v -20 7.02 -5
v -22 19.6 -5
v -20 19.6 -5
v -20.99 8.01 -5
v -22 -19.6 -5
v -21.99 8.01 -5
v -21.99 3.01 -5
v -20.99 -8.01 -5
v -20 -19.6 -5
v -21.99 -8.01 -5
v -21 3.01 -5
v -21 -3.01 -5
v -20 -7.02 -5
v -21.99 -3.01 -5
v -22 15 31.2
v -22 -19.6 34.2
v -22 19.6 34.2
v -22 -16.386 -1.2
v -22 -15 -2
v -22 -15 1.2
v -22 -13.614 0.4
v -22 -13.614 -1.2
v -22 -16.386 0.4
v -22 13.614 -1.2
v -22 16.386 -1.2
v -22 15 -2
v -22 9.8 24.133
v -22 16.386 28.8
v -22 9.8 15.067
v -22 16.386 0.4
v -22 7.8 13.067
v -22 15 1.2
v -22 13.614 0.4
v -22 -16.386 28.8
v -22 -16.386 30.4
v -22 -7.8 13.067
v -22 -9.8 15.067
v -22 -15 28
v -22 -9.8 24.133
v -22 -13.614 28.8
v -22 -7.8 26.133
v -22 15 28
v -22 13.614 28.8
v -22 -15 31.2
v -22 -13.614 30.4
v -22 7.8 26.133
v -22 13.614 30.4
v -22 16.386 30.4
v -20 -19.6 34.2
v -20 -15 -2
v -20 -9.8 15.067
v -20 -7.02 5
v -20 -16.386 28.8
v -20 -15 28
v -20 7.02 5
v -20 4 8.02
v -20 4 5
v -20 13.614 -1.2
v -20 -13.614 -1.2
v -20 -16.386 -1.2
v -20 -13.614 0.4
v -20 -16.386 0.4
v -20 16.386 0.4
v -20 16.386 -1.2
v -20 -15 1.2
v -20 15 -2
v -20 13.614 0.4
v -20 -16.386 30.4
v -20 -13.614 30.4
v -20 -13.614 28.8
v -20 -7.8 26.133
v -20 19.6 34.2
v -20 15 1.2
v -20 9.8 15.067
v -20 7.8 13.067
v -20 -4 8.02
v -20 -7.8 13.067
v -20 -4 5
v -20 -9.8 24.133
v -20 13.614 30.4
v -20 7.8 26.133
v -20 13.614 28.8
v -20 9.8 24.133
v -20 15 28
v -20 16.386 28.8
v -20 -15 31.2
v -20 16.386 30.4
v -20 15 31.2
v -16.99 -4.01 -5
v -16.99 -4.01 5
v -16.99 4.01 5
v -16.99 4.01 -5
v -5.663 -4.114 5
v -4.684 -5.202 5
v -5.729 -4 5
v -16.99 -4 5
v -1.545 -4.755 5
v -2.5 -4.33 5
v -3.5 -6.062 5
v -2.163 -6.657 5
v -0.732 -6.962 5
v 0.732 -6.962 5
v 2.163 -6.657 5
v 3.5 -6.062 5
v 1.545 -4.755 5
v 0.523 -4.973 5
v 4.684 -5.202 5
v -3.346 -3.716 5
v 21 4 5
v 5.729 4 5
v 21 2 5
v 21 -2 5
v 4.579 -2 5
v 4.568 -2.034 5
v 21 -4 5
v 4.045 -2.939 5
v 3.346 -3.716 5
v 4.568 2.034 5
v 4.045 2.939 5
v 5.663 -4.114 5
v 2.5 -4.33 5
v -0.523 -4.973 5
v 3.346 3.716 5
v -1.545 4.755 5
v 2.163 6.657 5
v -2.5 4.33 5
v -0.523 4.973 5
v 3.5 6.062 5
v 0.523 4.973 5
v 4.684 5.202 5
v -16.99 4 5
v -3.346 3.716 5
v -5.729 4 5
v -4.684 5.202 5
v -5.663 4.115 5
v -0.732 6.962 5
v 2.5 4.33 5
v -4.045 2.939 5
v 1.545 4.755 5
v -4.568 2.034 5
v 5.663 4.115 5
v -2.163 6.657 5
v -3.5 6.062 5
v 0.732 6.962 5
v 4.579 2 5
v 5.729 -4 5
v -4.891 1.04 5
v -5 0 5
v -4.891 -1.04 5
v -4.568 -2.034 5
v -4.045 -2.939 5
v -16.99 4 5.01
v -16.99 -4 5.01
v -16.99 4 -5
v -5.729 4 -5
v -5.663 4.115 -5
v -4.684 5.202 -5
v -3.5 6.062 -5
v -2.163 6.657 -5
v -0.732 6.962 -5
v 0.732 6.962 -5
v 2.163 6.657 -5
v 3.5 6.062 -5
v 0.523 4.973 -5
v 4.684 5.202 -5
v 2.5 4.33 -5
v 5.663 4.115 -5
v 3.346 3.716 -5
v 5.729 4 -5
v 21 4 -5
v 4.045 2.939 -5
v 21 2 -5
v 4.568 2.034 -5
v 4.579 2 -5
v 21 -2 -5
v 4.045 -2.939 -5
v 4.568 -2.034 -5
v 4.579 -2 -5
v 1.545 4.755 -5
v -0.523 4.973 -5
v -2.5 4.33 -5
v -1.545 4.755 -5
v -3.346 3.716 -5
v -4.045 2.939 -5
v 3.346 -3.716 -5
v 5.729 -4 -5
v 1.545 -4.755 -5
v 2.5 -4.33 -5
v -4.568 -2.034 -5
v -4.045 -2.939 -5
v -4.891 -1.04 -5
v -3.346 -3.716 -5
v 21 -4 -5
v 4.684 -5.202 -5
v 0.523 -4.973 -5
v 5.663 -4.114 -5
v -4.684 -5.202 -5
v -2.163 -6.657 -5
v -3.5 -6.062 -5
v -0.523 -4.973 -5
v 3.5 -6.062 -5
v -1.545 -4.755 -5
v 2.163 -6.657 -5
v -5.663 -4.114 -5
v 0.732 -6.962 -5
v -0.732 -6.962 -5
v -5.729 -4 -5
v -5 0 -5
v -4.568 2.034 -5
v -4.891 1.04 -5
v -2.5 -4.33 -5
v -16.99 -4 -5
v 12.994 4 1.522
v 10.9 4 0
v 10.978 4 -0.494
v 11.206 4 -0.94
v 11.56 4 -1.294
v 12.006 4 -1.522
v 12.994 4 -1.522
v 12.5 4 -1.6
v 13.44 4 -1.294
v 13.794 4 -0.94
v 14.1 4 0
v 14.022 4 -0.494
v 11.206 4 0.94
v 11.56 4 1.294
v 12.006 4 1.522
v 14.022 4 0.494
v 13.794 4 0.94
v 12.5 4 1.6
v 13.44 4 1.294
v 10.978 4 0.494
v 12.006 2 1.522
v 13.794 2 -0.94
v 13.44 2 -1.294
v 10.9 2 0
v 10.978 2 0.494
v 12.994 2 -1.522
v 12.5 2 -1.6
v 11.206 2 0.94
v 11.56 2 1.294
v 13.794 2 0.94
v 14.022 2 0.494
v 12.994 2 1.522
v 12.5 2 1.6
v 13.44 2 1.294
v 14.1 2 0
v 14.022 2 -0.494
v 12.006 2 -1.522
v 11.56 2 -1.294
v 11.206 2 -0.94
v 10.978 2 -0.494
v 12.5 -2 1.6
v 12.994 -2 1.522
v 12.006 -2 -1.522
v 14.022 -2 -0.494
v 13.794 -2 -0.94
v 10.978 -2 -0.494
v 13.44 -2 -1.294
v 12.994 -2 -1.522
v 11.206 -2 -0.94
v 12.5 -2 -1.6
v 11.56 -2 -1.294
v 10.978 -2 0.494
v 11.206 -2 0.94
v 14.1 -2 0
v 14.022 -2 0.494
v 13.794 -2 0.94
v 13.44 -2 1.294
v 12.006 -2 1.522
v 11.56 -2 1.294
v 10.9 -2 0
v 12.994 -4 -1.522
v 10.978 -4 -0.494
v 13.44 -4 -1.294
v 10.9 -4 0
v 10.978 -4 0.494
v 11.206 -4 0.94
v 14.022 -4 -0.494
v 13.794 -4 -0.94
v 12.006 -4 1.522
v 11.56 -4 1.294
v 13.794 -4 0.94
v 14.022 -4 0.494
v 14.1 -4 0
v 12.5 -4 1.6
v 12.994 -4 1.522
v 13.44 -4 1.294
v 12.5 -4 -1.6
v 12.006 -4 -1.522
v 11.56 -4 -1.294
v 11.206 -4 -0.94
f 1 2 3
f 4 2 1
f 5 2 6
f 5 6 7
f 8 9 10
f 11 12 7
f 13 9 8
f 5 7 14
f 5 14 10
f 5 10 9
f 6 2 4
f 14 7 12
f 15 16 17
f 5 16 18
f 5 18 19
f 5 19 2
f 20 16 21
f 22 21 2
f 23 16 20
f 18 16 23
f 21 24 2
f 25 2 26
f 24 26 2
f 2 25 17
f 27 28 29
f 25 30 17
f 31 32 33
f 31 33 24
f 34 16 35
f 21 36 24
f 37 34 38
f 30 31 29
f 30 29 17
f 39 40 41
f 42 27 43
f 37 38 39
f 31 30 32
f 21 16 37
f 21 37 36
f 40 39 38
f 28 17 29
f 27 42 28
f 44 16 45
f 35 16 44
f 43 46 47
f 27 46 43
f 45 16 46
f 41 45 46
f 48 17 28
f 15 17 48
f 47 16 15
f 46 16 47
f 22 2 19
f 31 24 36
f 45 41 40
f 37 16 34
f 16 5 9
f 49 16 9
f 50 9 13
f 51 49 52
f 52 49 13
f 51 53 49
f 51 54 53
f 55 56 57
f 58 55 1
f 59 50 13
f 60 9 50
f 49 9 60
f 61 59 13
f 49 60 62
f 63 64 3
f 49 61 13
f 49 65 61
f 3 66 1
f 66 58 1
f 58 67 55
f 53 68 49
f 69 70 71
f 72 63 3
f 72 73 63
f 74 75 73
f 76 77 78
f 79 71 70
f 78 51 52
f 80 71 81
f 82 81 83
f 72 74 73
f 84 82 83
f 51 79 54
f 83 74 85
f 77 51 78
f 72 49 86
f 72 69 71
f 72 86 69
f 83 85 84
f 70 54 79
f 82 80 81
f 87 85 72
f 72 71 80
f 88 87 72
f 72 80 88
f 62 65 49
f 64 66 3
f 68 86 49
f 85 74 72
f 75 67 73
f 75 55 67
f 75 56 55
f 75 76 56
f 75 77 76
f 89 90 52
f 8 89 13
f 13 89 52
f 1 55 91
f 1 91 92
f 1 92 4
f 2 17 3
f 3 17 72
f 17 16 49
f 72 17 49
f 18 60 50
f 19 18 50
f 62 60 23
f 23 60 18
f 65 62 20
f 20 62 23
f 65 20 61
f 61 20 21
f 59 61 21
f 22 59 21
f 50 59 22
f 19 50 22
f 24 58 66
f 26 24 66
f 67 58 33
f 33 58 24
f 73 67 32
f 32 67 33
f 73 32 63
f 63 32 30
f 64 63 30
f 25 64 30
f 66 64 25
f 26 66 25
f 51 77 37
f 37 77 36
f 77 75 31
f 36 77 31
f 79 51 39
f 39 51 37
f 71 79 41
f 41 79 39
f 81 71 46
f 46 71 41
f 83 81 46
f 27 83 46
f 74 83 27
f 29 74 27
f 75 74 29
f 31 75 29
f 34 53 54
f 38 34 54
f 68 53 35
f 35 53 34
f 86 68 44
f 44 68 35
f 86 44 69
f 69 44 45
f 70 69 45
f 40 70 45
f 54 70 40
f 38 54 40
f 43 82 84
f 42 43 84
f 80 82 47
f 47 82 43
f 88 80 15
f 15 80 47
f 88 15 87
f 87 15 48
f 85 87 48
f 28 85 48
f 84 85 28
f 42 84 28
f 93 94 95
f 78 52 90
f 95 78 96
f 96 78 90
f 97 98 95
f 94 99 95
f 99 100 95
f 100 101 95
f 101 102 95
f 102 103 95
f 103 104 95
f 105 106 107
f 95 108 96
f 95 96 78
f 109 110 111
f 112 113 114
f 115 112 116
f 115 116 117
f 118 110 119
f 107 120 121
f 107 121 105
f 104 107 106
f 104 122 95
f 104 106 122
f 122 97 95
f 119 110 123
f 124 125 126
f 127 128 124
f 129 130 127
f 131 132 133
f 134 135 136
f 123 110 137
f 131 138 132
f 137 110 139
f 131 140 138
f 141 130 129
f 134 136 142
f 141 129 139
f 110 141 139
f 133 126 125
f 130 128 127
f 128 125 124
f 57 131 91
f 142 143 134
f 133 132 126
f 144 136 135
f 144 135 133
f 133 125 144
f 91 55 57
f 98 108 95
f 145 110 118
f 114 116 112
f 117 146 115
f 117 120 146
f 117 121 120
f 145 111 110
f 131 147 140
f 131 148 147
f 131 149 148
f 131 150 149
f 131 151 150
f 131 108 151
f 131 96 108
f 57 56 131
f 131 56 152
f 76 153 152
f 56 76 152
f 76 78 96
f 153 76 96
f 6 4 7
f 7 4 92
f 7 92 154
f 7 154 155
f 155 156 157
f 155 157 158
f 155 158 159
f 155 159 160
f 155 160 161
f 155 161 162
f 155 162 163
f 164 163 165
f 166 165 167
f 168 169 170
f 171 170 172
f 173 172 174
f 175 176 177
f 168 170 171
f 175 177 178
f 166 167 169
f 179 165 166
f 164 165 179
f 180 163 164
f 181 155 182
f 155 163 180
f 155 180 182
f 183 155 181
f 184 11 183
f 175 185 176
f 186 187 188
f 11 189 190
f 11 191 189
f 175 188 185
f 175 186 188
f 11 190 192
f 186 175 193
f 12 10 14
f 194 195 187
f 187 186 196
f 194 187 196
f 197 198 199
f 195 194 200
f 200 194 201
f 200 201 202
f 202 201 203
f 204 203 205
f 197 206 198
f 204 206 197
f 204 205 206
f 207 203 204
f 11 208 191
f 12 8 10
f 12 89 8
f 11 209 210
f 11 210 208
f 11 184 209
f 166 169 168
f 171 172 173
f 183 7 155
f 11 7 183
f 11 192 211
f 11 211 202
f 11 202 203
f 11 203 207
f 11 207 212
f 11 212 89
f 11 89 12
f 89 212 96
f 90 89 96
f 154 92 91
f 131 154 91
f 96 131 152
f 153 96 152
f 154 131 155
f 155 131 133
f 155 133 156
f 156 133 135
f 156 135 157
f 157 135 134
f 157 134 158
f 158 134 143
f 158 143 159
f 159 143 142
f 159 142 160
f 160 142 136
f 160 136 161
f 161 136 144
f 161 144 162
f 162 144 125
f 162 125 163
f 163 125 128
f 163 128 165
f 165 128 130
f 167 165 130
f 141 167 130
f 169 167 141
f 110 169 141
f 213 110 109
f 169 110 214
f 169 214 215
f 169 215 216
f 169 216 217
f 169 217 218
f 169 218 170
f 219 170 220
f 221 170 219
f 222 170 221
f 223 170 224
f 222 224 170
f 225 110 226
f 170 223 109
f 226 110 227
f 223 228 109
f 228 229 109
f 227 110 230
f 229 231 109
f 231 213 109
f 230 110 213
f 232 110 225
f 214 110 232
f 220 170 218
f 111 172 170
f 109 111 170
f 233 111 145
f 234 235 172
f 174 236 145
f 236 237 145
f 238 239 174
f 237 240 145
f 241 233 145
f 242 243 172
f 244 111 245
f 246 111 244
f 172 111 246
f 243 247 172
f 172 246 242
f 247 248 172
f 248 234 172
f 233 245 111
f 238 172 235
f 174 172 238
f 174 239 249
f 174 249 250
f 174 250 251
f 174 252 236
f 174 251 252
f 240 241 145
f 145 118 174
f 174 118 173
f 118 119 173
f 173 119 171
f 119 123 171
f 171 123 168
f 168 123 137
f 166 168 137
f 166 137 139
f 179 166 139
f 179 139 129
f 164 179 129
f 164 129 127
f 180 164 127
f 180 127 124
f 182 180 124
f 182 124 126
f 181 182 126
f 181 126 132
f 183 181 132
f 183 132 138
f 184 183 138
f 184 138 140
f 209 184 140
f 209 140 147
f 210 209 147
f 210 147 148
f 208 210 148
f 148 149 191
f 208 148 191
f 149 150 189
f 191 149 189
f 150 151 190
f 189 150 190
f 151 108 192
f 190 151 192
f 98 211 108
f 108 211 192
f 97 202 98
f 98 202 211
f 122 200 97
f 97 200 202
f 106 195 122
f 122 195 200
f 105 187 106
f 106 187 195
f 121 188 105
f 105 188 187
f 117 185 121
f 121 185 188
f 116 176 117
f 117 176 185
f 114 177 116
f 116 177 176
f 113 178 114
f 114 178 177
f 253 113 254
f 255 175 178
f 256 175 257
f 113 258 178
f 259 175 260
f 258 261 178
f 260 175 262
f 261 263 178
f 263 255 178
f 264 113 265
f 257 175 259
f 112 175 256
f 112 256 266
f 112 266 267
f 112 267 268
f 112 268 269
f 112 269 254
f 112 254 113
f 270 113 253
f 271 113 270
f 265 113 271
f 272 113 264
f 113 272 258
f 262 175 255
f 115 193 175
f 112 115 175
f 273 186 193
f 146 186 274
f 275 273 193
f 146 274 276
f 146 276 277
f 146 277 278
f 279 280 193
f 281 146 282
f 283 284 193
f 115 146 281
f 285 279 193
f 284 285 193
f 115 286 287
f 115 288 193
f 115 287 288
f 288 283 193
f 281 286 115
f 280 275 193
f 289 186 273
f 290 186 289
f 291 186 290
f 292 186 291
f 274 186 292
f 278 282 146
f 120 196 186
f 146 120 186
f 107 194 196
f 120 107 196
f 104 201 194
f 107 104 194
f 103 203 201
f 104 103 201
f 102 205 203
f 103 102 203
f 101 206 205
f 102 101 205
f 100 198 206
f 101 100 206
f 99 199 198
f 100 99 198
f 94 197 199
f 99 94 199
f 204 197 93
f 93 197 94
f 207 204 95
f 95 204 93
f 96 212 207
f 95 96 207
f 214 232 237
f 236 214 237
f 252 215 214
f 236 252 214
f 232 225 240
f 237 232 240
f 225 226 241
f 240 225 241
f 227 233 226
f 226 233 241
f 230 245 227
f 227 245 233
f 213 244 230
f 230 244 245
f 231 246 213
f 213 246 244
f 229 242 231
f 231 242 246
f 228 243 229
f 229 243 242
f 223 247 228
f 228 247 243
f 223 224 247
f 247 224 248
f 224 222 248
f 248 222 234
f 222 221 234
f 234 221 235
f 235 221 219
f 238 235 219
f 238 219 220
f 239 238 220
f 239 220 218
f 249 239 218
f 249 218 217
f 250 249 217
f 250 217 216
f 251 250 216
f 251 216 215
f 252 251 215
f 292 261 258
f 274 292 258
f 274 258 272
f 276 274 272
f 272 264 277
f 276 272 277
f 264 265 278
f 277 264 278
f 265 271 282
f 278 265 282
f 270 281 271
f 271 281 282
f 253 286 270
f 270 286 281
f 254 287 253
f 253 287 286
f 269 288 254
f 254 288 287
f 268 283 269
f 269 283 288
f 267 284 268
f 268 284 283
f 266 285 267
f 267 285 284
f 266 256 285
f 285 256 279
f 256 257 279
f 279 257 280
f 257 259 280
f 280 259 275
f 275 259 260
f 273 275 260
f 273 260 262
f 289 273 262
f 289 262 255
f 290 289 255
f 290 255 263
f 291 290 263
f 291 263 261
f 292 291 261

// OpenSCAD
// file: obiscad/attach.scad
//---------------------------------------------------------------
//-- Openscad Attachment library
//-- Attach easily parts. Make your designs more reusable
//---------------------------------------------------------------
//-- This is a component of the obiscad opescad tools by Obijuan
//-- (C) Juan Gonzalez-Gomez (Obijuan)
//-- Sep-2012
//---------------------------------------------------------------
//-- Released under the GPL license
//---------------------------------------------------------------

use <vector.scad>

module connector(c)
{
  p = c[0];
  v = c[1];
  ang = c[2];

  color("Gray") point(p);
  translate(p)
    color("Gray") vector(unitv(v)*6,l_arrow=2);
}


//-- a,b are connectors
module attach(a,b)
{
  //-- Get the data from the connectors
  vref = b[1];
  v = a[1];
  roll=a[2];
  pos1 = a[0];
  pos2 = b[0];

  //-------- Calculations for the "orientate operator"
  //-- Calculate the rotation axis
  raxis = cross(vref,v);
    
  //-- Calculate the angle between the vectors
  ang = anglev(vref,v);

  translate(pos1)
    //-- Orientate operator
    rotate(a=roll, v=v)  rotate(a=ang, v=raxis)
      translate(-pos2)
	child(0); 
}

module arm(debug=false)
{
  
  cube(asize,center=true);

  if (debug) {
    frame(l=10);
    connector(a);
  }
}

module Test()
{
  cube(size,center=true);
  attach(c1,a) arm(debug=true);
  attach(c2,a) arm();
}

//-- Main part
size = [10,10,10];
c1 = [ [0,0,size[2]/2], [0,0,1], 10];
c2 = [ [-size[0]/2,0,0], [-1,0,0], 90 ];

*connector(c1);
*connector(c2);
*cube(size,center=true);


//-- Attachable part
asize = [5,20,3];
a = [ [0,asize[1]/2-3,-asize[2]/2], [0,0,1], 0  ];

*translate([30,0,0])  arm(debug=true);

*attach(c1,a) arm();
*attach(c2,a) arm();
  

orientate([1,1,1])
Test();
// file: obiscad/bcube.scad
//------------------------------------------------------------------------------
//  Bevel edge cube.
//  (c) Juan Gonzalez-Gomez (Obijuan), Sep-2012
//------------------------------------------------------------------------------

//----------------- IMPLEMENTATION USING THE MINKOWSKI OPERATOR ----------------

//------------------------------------------------------------------------------
//-- Bevel Cube main function
//-- Parameters:
//--   * Size:  Cube size
//--   * cr : Corner radius (if cr==0, a standar cube is built)
//--   * cres:  Corner resolution (in points). cres=0 means flat corners
//------------------------------------------------------------------------------
module bcube(size,cr=0,cres=0)
{
  //-- Internal cube size
  bsize = size - 2*[cr,cr,0];

  //-- Get the (x,y) coorner coordinates in the 1st cuadrant
  x = bsize[0]/2;
  y = bsize[1]/2;

  //-- A corner radius of 0 means a standar cube!
  if (cr==0)
    cube(bsize,center=true);
  else {

      
      //-- The height of minkowski object is double. So
      //-- we sould scale by 0.5
      scale([1,1,0.5])

      //-- This translation is for centering the minkowski objet
      translate([-x, -y,0])

      //-- Built the  beveled cube with minkowski
      minkowski() {

        //-- Internal cube
        cube(bsize,center=true);

        //-- Cylinder in the corner (1st cuadrant)
        translate([x,y, 0])
          cylinder(r=cr, h=bsize[2],center=true, $fn=4*(cres+1));
      }
  }

}


//-- Examples of use of the bcube() module

//-- Standar cube
translate([-15,15,0])
bcube([20,20,10]);

//-- Beveled cube (0 point resolution)
translate([15,15,0])
  bcube([20,20,10],cr=4);

//-- Beveled cube (1 point resolution)
translate([-15,-15,0])
  bcube([20,20,10],cr=4, cres=1);

//-- Beveled cube (4 points resolution)
translate([15,-15,0])
  bcube([20,20,10],cr=4, cres=4);
// file: obiscad/utils.scad
//---------------------------------------------------------------
//-- Utils. General utilities...
//-- This is a component of the obiscad opescad tools by Obijuan
//-- (C) Juan Gonzalez-Gomez (Obijuan)
//-- Sep-2012
//---------------------------------------------------------------
//-- Released under the GPL license
//---------------------------------------------------------------

//-----------------------------------------------------
//-- Functions for converting a scalar into a vector:
//-----------------------------------------------------
//-- The scalar is interpreted as the x coordinate
function VX(x) = [x,0,0];

//-- The scalar is interpreted as the y coordinate
function VY(y) = [0,y,0];

//-- The scalar is interpreted as the z coordinate
function VZ(z) = [0,0,z];


//-----------------------------------------
//-- Definition for accessing vector componentes easily
//--------------------------------------------------------
X = 0;
Y = 1;
Z = 2;
// main file
include <obiscad/utils.scad>
use <obiscad/bcube.scad>
use <obiscad/attach.scad>
use <obiscad/bevel.scad>


//-- Pen-holder
pen_diam = 10;
pen_wrap_th = 2;
pen_hi = 10;
clamp_empty = 4;
clamp_lx = 15;
clamp_drill = 3.2;

//------------------------------ Pen-arm --------------------
pen_arm_lx = 20;

//-- INTERFACE: Radial distance of drills
fp_drills_distance = 6;

//-- Drills diameter
fp_drills_diam = 3.2;

pen_base_th = 4;

reinforce_cr = 4;
reinforce_cres = 0;

//----- Skymega drills  ----------------------
sky_dd = 15; //-- Distance
sky_drill_diam = 3.2; //-- Drill diam

//--- Create the skymega drill table
sky_drill_table = [
  [sky_dd, sky_dd, 0],
  [-sky_dd, sky_dd, 0],
  [-sky_dd, -sky_dd, 0],
  [sky_dd, -sky_dd, 0],
];

//-- Connecting plate (base) for the repyz modules
plate_border_th = 3;
plate_th = 2;

plate_side = 2*sky_dd + sky_drill_diam + 2*plate_border_th;
plate_size = [plate_side, plate_side, plate_th];

module plate() 
{

  difference() {
    //-- Plate
    cube(plate_size, center = true);
  
    //-- Skymega drills
    for (drill = sky_drill_table) {
      translate(drill)
      cylinder(r=sky_drill_diam/2, h=plate_size[Z]+extra,center=true, $fn=6);
    }
    
    //-- Cutout
    translate([5,0,0])
    bcube([plate_size[X]/3, plate_size[Y]/2, plate_size[Z]+extra], cr = 2, cres=0);
  }

}

//translate([-plate_size[Z]/2,0,0])
//rotate([0, 90, 0])
//plate();

//---- -------------------------Build the pen-holder
extra=5;

//-- Clamp
clamp_size = [clamp_lx+pen_wrap_th, clamp_empty + 2*pen_wrap_th, pen_hi];
empty_size = [clamp_size[X]+extra, clamp_empty, clamp_size[Z]+extra];

module clamp_body()
{
  difference() {
  cube(clamp_size,center=true);

    //-- Body drill
    rotate([90,0,0])
      cylinder(r=clamp_drill/2, h=clamp_size[Z]+extra, center=true, $fn=20);
  }
}

module clamp_empty_part()
{

  union() {
  //-- Pen hole and clamp empty space
  cylinder(r=pen_diam/2, h=pen_hi+extra, center=true, $fn=30);

  translate([empty_size[X]/2,0,0])
    cube(empty_size,center=true);
  }
}

a = [[(pen_diam+pen_wrap_th)/2,0,0],[1,0,0],0];
b = [[-clamp_size[X]/2+pen_wrap_th,0,0],[1,0,0],0];

//connector(a);
//connector(b);

difference() {
  union() {
    attach(a,b)
      //color("yellow",0.4)
      clamp_body();

      //-- Pen holder
      cylinder(r=(pen_diam+2*pen_wrap_th)/2, h=pen_hi, center=true, $fn=30);
    }

  clamp_empty_part();
}


//--- Pen arm
pen_arm_size = [pen_arm_lx-(pen_diam+pen_wrap_th)/2+pen_wrap_th, clamp_empty + 2*pen_wrap_th, pen_hi];

translate([-pen_arm_size[X]/2-pen_diam/2,0,0])
cube(pen_arm_size,center=true);

//-- Pen base
pen_base_size = [pen_base_th, 
		  2*fp_drills_distance + fp_drills_diam+2*pen_base_th, 
		  pen_arm_size[Z] + fp_drills_diam + 2*pen_base_th ];

module pen_base() {
  

  drills_pos =  [0,fp_drills_distance, pen_base_size[Z]/2-pen_base_th];
  drills_pos2 = [0,-fp_drills_distance, pen_base_size[Z]/2-pen_base_th ];

  difference() {
    cube(pen_base_size,center=true);

    translate(drills_pos)
      rotate([0,90,0])
	cylinder(r=fp_drills_diam/2, h=pen_base_th+extra, center=true, $fn=20);

    translate(drills_pos2)
      rotate([0,90,0])
	cylinder(r=fp_drills_diam/2, h=pen_base_th+extra, center=true, $fn=20);

  }
}

con1 = [[-pen_arm_size[X]-pen_diam/2,0, -pen_arm_size[Z]/2],[-1,0,0],0];
con2 = [[-plate_size[X]/2,0,0],[0,0,1],0];

*connector(con1);
*connector(con2);

attach(con1,con2)
  plate();

//-- Add some reinforcements
pr1 = [
  [[con1[0][X], -pen_arm_size[Y]/2,0],[0,0,1],0],
  [[con1[0][X], -pen_arm_size[Y]/2,0],[1,-1,0],0],
];

pr2 = [
  [[con1[0][X], pen_arm_size[Y]/2,0],[0,0,1],0],
  [[con1[0][X], pen_arm_size[Y]/2,0],[1,1,0],0],
];

pr3 = [
  [[con1[0][X],0,pen_arm_size[Z]/2],[0,1,0],0],
  [[con1[0][X],0,0],[1,0,1],0],
];

bconcave_corner_attach (pr1[0], pr1[1],l=pen_arm_size[Z],cr=reinforce_cr,cres=reinforce_cres);
bconcave_corner_attach (pr2[0], pr2[1],l=pen_arm_size[Z],cr=reinforce_cr,cres=reinforce_cres);
bconcave_corner_attach (pr3[0], pr3[1],l=pen_arm_size[Y],cr=reinforce_cr,cres=reinforce_cres);




    
